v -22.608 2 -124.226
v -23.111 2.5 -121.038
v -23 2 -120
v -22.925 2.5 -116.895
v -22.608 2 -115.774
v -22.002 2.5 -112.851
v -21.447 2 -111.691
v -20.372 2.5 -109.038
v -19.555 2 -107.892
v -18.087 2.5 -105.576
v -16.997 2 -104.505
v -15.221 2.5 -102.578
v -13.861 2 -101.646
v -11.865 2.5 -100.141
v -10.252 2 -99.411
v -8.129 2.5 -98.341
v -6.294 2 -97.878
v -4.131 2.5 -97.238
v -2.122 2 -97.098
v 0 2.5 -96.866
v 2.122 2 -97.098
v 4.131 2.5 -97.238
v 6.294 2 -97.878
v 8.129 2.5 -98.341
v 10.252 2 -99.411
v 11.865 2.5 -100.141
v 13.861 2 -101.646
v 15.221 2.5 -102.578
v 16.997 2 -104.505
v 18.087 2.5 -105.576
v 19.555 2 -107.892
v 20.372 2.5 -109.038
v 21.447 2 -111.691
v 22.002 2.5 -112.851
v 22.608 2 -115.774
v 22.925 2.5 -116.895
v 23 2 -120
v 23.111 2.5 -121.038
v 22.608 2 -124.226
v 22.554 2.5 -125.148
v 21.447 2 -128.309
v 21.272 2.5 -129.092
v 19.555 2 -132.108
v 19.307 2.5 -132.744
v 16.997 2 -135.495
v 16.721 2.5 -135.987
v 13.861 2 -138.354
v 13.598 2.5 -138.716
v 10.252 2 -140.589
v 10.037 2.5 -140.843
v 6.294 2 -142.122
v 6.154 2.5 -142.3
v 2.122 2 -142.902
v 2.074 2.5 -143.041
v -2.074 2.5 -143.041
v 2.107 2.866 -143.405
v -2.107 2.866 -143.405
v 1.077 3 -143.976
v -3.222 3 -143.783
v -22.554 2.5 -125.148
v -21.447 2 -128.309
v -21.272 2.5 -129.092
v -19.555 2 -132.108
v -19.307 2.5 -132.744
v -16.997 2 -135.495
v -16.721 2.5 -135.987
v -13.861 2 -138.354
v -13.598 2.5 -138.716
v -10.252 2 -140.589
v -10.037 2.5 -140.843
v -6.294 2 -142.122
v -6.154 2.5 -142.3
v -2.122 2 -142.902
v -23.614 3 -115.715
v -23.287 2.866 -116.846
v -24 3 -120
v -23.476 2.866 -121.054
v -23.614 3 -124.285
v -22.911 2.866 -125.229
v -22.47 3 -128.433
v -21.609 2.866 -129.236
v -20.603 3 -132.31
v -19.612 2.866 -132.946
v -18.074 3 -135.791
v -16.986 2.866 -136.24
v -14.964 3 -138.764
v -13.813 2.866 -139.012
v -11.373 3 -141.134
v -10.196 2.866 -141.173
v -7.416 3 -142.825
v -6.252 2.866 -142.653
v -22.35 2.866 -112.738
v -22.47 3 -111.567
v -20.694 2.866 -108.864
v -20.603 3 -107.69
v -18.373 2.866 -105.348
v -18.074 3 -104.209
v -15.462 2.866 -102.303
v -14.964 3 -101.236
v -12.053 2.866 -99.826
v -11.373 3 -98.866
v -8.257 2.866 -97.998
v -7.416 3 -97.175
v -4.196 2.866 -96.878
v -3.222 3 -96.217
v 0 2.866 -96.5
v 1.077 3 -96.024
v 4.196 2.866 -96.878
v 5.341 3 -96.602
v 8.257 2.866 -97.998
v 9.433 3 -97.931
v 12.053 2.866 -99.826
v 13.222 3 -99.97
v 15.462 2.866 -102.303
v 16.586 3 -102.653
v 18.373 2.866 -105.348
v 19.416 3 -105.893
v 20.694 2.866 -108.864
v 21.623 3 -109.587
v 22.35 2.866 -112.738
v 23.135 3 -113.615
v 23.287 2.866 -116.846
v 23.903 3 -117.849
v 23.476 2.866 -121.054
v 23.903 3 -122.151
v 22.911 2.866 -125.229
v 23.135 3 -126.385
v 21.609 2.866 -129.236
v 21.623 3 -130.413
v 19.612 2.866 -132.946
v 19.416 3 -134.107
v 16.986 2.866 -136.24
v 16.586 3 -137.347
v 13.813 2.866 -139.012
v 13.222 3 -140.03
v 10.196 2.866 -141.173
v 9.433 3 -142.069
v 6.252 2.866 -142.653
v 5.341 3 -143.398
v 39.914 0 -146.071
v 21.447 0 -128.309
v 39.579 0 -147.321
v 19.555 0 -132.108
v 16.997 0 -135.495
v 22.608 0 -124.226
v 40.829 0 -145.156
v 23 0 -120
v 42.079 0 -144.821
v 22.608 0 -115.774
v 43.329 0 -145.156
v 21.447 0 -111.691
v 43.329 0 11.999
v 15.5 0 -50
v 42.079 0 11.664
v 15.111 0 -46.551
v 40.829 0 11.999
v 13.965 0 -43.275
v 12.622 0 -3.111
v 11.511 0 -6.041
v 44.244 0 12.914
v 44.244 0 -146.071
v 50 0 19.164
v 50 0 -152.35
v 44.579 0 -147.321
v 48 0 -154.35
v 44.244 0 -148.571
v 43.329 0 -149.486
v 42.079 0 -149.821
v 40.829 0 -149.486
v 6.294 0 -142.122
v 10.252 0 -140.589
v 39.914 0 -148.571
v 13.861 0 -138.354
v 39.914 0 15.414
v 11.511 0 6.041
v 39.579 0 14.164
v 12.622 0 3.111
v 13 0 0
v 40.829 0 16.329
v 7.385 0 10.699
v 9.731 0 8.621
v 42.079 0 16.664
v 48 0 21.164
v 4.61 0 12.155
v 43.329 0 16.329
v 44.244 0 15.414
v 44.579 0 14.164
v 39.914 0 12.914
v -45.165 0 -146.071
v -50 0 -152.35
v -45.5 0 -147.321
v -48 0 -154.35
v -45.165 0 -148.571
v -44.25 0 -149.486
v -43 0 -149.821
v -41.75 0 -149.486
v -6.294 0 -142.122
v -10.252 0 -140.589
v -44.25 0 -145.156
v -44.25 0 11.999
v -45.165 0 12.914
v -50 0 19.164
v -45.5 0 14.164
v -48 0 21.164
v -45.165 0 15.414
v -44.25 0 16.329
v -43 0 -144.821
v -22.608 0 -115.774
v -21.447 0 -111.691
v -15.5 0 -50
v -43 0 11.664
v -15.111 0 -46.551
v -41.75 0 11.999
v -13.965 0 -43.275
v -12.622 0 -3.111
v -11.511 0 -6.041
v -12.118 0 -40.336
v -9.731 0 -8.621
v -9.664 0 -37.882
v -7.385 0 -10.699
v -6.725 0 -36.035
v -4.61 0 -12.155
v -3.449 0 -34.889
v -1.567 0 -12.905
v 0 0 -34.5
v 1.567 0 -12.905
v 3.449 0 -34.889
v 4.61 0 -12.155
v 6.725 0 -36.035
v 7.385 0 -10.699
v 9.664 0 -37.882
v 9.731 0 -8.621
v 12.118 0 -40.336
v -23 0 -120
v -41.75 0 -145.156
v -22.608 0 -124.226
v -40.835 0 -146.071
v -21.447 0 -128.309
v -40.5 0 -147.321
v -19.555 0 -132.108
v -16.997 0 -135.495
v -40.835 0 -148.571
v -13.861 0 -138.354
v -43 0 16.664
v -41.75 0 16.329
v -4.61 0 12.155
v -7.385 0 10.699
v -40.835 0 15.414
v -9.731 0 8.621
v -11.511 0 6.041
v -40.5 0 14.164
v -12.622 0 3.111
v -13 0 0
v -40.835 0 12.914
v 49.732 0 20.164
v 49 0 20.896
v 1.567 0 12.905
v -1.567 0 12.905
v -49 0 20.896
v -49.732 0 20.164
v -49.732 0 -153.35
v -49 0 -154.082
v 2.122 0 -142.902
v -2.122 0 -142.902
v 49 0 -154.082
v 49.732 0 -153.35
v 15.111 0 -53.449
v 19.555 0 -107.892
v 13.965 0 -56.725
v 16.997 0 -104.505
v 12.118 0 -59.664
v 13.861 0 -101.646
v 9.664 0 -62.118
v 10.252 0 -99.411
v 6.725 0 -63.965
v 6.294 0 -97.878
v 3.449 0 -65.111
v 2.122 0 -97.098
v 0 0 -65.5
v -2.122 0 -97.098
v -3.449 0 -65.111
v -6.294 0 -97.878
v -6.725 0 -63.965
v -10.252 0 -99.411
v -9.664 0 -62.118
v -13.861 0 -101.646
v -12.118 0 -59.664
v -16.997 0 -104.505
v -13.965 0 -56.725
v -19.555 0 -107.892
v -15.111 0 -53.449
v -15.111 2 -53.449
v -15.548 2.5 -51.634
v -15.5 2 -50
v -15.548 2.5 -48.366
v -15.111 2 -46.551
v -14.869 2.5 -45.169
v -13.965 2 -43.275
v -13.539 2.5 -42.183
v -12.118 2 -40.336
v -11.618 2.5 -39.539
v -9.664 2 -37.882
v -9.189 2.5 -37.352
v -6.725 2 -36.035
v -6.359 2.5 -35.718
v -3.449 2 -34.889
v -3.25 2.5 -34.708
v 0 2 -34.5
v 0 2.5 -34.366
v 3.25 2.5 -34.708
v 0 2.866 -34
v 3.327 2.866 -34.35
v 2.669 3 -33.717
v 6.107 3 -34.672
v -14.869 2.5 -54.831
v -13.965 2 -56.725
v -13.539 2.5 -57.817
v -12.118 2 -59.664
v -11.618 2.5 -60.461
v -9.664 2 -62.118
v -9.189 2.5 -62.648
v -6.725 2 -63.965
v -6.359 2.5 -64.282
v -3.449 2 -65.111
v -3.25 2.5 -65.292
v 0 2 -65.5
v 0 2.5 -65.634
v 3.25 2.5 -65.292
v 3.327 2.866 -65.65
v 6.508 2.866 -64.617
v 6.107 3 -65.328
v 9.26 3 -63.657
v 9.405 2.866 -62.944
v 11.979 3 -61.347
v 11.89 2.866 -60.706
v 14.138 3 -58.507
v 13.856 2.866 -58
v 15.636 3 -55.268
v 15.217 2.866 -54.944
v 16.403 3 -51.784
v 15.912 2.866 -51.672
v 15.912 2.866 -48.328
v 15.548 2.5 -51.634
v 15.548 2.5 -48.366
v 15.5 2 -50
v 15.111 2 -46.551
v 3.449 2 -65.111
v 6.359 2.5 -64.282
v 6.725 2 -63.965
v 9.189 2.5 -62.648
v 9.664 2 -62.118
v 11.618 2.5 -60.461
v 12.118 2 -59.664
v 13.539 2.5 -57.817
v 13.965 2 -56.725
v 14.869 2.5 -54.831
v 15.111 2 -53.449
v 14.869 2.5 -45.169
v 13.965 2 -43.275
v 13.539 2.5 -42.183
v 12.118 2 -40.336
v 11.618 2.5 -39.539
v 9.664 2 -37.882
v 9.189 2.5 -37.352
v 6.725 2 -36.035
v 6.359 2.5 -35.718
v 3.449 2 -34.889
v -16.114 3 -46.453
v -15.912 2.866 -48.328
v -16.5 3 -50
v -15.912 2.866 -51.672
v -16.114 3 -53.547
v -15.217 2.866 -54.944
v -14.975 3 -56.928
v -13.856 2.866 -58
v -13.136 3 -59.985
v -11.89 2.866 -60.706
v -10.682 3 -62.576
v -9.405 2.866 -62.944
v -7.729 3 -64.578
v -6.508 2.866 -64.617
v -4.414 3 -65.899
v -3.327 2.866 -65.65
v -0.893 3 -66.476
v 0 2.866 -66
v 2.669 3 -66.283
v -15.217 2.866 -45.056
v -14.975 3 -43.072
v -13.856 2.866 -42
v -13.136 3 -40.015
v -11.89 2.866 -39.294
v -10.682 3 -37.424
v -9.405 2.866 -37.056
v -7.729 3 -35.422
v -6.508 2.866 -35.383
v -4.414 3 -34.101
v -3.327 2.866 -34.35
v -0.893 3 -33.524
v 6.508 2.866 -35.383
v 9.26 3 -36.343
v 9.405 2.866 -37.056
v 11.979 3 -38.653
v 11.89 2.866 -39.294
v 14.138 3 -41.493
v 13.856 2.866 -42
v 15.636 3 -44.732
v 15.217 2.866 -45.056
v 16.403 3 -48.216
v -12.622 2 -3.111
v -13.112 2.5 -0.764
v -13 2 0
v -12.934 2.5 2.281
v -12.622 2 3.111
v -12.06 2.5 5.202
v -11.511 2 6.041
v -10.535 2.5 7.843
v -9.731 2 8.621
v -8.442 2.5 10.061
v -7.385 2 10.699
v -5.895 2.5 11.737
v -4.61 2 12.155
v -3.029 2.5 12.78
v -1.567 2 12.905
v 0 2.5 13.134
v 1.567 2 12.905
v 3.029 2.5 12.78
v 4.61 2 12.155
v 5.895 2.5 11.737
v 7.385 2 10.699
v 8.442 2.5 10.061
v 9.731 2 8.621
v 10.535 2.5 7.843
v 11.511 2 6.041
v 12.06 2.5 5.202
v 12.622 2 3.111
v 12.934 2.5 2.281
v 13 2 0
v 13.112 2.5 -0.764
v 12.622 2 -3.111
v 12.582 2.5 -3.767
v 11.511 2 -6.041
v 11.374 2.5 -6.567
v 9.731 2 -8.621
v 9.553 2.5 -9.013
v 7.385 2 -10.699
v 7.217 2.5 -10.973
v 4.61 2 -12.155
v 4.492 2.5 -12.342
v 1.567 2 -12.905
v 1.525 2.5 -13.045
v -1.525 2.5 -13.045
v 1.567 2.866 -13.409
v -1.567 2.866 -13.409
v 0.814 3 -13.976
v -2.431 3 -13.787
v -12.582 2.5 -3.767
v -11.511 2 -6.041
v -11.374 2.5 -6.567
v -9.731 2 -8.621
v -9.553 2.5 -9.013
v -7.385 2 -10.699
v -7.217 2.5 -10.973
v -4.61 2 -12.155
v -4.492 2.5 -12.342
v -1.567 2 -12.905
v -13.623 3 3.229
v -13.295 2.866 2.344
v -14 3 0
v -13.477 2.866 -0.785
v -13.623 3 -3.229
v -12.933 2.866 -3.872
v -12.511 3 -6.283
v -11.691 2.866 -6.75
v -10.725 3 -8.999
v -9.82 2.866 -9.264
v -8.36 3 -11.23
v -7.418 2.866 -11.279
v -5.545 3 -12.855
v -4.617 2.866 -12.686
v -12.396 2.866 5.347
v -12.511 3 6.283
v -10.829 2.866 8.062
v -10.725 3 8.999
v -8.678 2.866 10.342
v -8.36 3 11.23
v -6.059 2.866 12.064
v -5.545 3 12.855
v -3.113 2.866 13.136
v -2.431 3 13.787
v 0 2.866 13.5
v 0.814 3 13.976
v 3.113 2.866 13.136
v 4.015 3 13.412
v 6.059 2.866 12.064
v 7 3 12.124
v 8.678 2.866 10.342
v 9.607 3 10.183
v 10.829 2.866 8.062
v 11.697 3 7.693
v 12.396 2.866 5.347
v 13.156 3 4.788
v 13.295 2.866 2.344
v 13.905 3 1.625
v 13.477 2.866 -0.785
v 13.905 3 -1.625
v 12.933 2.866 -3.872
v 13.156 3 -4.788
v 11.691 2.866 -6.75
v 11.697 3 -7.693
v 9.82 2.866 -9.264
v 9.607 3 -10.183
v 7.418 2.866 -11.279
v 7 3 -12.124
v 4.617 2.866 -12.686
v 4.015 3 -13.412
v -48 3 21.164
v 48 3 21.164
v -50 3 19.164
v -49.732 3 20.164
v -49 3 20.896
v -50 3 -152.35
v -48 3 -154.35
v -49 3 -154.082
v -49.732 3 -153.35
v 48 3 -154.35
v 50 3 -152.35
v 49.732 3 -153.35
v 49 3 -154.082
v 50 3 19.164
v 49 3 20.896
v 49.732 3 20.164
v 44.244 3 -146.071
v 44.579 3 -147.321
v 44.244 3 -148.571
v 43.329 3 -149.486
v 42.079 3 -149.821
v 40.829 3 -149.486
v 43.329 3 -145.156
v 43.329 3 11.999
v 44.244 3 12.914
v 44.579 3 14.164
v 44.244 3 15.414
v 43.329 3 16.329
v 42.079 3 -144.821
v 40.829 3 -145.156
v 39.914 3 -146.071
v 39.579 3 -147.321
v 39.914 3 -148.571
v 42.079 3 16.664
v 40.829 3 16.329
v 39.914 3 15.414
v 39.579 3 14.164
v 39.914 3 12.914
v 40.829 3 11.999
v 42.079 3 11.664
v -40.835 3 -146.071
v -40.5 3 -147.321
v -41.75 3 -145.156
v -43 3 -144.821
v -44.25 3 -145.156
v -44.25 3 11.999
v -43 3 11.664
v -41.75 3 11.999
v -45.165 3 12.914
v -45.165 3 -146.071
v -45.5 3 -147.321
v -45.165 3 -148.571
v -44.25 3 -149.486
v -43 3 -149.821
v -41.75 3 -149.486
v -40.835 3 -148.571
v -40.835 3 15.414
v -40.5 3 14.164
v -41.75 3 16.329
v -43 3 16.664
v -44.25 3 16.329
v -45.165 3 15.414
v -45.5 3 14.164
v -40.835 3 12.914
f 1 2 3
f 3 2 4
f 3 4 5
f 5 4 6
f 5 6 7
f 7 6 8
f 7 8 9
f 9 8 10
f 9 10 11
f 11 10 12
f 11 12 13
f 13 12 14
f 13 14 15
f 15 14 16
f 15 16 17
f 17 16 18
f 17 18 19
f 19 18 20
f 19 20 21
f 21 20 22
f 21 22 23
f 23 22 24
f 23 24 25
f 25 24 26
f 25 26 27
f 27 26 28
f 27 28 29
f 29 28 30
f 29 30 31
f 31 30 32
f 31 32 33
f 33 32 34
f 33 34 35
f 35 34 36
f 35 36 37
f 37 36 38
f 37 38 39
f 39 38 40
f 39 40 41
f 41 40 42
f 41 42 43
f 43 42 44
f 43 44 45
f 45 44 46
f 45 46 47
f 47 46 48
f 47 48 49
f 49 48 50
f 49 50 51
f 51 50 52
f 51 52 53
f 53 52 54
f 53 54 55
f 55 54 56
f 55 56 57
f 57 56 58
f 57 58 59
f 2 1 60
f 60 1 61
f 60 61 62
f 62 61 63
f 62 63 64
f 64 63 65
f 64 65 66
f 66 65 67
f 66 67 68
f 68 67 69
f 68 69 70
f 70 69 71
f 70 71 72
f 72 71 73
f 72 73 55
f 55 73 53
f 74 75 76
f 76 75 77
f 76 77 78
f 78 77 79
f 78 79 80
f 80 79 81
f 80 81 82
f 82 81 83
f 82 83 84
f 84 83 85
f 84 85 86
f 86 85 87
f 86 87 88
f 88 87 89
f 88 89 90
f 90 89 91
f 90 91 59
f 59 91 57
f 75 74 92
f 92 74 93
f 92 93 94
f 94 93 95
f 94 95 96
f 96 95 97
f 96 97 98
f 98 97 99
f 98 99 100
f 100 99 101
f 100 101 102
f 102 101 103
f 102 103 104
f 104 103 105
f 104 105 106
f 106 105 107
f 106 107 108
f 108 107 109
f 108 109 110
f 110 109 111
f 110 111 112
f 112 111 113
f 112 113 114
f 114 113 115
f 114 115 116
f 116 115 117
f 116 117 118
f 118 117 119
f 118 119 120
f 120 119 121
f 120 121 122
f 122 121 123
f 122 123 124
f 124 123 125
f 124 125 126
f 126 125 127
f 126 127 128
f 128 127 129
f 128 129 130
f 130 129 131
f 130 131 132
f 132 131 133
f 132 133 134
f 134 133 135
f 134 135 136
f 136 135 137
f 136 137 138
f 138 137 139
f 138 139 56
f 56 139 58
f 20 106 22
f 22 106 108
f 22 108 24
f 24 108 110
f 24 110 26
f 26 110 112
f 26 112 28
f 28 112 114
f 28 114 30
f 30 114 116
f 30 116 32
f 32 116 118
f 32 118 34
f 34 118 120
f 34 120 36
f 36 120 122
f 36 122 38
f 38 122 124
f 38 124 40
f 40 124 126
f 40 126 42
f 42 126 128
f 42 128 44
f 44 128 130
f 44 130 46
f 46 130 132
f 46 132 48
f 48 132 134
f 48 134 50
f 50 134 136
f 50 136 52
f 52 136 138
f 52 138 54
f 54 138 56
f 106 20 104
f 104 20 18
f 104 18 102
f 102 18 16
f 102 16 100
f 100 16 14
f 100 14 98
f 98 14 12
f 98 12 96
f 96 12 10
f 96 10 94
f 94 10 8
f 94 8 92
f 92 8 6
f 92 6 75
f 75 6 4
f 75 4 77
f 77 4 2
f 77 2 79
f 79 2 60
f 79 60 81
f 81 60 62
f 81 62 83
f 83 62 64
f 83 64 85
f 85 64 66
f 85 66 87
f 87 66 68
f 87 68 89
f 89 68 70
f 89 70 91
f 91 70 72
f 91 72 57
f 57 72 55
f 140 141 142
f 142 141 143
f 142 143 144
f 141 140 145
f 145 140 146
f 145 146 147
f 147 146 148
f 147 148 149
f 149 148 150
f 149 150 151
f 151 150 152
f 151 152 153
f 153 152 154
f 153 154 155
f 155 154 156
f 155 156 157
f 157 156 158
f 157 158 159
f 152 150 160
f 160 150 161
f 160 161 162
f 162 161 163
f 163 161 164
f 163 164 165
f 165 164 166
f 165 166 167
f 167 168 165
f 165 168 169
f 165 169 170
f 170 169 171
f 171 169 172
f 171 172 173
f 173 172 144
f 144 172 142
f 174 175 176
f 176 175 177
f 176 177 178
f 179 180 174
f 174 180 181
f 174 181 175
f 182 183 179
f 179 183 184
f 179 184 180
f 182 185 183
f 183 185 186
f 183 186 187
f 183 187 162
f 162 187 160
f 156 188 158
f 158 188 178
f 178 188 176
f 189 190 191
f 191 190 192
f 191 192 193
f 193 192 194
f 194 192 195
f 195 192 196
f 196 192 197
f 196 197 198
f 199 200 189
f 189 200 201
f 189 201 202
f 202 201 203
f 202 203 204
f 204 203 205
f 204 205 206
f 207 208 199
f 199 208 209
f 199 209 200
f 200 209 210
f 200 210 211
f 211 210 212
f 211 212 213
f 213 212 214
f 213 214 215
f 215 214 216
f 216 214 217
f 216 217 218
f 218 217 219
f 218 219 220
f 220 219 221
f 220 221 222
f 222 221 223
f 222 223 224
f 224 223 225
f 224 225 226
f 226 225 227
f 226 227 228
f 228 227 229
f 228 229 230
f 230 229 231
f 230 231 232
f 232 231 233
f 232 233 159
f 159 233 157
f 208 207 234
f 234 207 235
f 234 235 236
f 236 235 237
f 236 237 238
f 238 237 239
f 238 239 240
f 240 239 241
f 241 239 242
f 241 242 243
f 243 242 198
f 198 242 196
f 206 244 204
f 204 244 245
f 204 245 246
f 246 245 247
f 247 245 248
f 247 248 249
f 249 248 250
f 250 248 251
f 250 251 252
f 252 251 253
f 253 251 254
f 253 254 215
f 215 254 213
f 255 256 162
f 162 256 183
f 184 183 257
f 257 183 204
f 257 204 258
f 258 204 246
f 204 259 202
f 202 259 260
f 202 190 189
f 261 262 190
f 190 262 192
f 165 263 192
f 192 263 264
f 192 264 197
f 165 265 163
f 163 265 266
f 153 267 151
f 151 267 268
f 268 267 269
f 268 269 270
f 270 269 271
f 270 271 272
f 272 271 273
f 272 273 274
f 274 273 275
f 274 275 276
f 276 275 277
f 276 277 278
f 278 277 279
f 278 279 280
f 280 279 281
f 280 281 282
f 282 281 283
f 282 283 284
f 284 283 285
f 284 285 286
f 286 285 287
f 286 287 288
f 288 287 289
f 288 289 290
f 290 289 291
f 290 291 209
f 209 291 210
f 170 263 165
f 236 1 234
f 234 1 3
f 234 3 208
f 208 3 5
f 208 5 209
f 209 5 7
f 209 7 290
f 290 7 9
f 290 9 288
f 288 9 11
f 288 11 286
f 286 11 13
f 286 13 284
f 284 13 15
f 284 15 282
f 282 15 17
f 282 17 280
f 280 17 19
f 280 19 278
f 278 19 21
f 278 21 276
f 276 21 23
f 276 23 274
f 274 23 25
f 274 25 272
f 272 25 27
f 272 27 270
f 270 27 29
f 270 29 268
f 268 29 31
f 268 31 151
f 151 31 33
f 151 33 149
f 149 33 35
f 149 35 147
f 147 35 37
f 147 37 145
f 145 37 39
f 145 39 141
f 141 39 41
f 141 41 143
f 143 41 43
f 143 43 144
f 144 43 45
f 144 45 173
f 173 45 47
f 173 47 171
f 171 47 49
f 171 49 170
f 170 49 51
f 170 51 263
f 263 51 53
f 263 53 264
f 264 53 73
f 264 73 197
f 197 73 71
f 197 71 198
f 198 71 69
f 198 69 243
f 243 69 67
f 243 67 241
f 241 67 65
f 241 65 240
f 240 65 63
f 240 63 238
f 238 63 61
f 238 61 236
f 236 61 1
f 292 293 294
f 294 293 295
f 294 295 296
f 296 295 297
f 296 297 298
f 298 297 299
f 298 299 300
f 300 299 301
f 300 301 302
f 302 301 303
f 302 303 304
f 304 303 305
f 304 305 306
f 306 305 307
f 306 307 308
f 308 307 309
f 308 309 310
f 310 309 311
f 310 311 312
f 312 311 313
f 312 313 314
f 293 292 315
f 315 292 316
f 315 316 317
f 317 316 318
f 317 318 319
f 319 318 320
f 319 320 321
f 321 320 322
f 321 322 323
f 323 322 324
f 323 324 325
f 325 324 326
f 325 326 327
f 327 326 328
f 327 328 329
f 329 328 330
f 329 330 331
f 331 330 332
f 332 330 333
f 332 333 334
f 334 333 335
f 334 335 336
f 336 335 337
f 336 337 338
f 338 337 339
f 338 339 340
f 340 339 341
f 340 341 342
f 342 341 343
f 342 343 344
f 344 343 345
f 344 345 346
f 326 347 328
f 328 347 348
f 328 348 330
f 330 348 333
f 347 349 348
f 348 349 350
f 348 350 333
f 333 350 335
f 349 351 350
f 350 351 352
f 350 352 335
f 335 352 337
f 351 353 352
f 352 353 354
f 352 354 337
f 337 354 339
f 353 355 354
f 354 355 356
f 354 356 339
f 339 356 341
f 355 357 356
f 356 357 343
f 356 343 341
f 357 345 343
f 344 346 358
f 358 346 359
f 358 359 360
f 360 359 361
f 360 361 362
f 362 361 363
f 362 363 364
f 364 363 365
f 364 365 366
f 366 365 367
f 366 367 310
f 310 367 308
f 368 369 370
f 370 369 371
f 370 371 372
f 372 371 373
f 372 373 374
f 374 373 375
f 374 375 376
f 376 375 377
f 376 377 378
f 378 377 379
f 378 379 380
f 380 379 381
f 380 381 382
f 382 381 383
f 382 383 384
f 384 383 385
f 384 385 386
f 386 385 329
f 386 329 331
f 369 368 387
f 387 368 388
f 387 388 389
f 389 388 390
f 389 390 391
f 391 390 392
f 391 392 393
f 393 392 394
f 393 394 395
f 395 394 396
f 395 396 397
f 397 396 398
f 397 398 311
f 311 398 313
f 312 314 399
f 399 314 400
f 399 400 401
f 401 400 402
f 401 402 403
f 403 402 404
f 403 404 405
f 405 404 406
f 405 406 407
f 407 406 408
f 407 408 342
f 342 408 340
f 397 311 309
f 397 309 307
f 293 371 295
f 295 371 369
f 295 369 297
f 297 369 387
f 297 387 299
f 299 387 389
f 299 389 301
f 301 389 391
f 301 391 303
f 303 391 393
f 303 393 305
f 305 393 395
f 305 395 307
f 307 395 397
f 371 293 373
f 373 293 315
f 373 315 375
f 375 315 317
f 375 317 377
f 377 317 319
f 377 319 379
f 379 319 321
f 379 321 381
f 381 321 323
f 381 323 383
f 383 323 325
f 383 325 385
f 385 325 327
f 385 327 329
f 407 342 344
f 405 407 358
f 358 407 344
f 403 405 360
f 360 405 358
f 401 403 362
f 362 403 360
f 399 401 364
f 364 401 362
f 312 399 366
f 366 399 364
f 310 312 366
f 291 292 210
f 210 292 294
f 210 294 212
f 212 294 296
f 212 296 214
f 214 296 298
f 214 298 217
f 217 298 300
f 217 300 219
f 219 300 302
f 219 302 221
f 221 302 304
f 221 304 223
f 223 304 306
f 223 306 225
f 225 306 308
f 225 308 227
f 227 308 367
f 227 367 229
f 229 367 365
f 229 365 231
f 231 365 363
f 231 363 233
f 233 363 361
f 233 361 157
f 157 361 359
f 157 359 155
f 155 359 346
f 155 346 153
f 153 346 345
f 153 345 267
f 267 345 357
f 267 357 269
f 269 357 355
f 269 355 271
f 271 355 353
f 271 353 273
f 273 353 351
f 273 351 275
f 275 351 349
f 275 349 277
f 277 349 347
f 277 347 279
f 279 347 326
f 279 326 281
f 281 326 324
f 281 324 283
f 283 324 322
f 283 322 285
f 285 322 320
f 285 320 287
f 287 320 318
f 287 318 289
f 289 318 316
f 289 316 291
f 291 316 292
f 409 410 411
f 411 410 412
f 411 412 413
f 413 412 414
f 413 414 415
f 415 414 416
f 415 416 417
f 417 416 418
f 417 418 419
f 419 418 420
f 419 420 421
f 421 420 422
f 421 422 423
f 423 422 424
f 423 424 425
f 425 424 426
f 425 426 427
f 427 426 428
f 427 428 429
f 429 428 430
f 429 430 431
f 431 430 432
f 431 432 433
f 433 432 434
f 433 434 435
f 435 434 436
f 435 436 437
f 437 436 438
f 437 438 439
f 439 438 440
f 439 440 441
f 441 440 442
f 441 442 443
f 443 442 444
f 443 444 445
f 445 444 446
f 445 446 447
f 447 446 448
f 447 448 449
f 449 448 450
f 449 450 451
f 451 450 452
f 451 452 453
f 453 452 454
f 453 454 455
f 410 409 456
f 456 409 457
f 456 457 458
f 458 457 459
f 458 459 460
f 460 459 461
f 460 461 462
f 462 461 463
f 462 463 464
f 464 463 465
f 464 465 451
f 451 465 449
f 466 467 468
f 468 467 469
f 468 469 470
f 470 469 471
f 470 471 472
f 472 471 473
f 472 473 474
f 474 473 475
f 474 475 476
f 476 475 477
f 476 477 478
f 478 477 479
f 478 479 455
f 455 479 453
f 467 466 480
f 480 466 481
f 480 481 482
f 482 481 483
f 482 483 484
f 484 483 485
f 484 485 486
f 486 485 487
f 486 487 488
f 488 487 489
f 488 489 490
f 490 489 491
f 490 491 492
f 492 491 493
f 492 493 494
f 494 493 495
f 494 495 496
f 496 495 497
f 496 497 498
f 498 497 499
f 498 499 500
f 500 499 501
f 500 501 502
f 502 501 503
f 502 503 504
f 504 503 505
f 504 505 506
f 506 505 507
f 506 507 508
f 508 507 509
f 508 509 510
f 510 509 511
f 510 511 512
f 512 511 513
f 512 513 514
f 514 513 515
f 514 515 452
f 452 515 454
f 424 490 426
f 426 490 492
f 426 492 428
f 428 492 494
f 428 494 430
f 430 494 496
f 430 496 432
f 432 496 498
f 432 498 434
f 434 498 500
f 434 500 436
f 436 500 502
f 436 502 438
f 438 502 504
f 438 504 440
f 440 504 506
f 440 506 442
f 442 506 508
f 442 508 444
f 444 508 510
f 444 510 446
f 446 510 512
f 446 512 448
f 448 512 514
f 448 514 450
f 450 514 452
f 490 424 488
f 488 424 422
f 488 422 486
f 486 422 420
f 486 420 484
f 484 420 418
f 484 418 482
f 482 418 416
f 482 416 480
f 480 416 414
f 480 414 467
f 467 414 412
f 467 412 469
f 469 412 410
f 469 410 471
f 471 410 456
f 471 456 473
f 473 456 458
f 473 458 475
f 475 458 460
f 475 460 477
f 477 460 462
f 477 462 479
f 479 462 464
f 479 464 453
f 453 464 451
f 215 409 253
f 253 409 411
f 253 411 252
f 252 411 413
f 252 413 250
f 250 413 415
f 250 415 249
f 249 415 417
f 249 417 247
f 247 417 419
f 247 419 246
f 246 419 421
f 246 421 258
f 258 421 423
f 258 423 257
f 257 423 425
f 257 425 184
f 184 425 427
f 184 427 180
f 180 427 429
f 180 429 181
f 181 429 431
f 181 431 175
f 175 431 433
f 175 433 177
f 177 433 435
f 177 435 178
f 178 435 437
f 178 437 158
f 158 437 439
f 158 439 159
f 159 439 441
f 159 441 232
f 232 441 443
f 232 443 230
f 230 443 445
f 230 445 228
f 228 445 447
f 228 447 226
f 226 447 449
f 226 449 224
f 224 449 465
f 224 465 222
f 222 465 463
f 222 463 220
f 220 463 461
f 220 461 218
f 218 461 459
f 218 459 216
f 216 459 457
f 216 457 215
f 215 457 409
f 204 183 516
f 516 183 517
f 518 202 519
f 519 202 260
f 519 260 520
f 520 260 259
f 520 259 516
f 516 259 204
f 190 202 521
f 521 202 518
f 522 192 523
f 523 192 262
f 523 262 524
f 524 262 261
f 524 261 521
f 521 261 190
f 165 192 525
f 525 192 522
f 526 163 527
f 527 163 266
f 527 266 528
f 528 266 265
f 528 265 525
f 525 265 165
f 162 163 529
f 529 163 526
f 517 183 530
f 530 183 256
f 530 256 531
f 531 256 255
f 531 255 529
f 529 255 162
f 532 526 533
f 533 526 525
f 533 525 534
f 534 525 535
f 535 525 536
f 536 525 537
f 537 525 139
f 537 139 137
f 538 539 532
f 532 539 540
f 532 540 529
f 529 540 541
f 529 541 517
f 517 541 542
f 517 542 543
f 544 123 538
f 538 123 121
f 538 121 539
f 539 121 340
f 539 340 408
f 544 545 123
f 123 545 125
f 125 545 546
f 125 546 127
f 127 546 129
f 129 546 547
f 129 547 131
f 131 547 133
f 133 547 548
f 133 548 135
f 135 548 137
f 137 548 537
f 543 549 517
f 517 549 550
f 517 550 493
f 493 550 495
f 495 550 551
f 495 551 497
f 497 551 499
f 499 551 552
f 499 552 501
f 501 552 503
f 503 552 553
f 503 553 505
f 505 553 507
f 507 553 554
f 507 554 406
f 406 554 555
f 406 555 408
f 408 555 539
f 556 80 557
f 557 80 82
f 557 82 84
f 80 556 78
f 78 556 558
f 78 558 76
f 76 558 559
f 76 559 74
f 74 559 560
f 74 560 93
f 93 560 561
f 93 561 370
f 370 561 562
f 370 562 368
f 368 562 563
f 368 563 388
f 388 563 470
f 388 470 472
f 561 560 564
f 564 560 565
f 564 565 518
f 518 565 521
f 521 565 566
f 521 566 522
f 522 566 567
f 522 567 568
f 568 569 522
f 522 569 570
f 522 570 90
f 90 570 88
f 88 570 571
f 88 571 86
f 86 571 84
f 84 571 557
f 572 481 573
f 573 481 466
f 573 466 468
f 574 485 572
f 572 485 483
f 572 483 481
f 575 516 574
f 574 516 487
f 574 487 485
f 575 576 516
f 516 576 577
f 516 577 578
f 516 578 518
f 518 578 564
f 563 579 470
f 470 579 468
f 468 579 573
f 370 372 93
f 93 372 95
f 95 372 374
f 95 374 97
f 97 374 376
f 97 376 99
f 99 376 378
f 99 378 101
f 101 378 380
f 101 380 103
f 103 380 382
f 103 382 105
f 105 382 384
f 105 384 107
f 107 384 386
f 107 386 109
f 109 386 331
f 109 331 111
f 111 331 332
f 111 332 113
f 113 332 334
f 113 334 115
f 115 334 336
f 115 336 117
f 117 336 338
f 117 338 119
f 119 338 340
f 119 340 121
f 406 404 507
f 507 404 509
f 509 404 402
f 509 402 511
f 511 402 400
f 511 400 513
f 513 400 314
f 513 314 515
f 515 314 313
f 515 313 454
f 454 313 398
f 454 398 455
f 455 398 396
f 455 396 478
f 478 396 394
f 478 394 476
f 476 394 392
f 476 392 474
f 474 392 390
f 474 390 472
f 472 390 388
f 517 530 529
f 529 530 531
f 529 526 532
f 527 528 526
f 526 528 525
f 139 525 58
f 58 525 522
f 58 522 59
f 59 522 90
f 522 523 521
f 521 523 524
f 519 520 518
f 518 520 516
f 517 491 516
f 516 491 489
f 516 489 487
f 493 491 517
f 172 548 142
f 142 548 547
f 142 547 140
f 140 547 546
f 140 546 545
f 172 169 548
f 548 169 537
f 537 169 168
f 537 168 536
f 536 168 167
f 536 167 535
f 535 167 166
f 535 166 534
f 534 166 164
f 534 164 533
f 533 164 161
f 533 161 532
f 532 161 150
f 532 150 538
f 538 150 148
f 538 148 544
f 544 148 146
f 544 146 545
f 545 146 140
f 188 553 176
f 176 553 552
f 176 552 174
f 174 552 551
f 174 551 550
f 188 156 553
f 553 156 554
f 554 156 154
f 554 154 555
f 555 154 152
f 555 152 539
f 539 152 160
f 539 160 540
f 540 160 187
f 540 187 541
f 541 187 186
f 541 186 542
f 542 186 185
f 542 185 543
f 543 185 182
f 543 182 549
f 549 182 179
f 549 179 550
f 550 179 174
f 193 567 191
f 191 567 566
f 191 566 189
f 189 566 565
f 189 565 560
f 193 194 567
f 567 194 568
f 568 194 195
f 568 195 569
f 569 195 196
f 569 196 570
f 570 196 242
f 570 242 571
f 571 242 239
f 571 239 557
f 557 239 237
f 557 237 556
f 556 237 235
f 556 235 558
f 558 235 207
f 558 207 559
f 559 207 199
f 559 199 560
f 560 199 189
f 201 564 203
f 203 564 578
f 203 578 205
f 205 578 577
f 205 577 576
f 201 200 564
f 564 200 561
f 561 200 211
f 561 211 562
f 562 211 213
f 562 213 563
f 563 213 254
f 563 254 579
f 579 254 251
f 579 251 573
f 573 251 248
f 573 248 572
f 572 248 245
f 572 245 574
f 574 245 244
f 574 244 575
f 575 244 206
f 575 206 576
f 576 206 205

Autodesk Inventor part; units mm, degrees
ref_plane "YZ Plane" through (0, 0, 0) normal (1, 0, 0) x (0, 1, 0)
ref_plane "XZ Plane" through (0, 0, 0) normal (0, 1, 0) x (-1, 0, 0)
ref_plane "XY Plane" through (0, 0, 0) normal (0, 0, 1) x (1, 0, 0)
sketch "Sketch1" plane through (0, 0, 0) normal (0, 1, 0) x (-1, 0, 0)
  circle A0 centre (0, 0) radius 13
  circle A1 centre (0, -50) radius 15.5
  circle A2 centre (0, -120) radius 23
  line L0 (0, 21.1644) -> (-48, 21.1644)
  line L1 (-50, 19.1644) -> (-50, -152.3497)
  line L2 (-48, -154.3497) -> (48, -154.3497)
  line L3 (50, -152.3497) -> (50, 19.1644)
  line L4 (48, 21.1644) -> (0, 21.1644)
  arc A3 (50, 19.1644) -> (48, 21.1644) centre (48, 19.1644) ccw
  arc A4 (-48, 21.1644) -> (-50, 19.1644) centre (-48, 19.1644) ccw
  arc A5 (-50, -152.3497) -> (-48, -154.3497) centre (-48, -152.3497) ccw
  arc A6 (48, -154.3497) -> (50, -152.3497) centre (48, -152.3497) ccw
  point P0 (50, 21.1644)
extrude "Extrusion1" add sketch "Sketch1" along normal blind 3
fillet "Fillet1" radius 1 3 edges at (13, 3, 0) (15.5, 3, -50) (23, 3, -120)
sketch "Sketch2" plane through (0, 3, 0) normal (0, 1, 0) x (1, 0, 0)
  arc A0 (-50, -19.1644) -> (-48, -21.1644) centre (-48, -19.1644) ccw projected
  circle A1 centre (-43, -14.1644) radius 2.5
  circle A2 centre (-43, 147.3209) radius 2.5
  circle A3 centre (42.0794, -14.1644) radius 2.5
  circle A4 centre (42.0794, 147.3209) radius 2.5
  point P0 (0, 0)
  dimension "d20" = 5
  dimension "d21" = 5
  dimension "d22" = 5
  dimension "d23" = 5
extrude "Extrusion2" cut sketch "Sketch2" against normal blind 10
sketch "Sketch3" plane through (0, 3, 0) normal (0, 1, 0) x (1, 0, 0)
  point P0 (0, 0)
equation "\"BendRadius\" = Thickness"
equation "\"BendReliefWidth\" = Thickness"
equation "\"BendReliefDepth\" = 0.5 * Thickness"
equation "\"CornerReliefSize\" = 4 * Thickness"
equation "\"MinimumRemnant\" = 2 * Thickness"
equation "\"TransitionRadius\" = BendRadius"
equation "\"JacobiRadiusSize\" = BendRadius"
equation "\"GapSize\" = Thickness"
equation "\"Thickness\" = 0.5"
properties part number "Circle_Color"
